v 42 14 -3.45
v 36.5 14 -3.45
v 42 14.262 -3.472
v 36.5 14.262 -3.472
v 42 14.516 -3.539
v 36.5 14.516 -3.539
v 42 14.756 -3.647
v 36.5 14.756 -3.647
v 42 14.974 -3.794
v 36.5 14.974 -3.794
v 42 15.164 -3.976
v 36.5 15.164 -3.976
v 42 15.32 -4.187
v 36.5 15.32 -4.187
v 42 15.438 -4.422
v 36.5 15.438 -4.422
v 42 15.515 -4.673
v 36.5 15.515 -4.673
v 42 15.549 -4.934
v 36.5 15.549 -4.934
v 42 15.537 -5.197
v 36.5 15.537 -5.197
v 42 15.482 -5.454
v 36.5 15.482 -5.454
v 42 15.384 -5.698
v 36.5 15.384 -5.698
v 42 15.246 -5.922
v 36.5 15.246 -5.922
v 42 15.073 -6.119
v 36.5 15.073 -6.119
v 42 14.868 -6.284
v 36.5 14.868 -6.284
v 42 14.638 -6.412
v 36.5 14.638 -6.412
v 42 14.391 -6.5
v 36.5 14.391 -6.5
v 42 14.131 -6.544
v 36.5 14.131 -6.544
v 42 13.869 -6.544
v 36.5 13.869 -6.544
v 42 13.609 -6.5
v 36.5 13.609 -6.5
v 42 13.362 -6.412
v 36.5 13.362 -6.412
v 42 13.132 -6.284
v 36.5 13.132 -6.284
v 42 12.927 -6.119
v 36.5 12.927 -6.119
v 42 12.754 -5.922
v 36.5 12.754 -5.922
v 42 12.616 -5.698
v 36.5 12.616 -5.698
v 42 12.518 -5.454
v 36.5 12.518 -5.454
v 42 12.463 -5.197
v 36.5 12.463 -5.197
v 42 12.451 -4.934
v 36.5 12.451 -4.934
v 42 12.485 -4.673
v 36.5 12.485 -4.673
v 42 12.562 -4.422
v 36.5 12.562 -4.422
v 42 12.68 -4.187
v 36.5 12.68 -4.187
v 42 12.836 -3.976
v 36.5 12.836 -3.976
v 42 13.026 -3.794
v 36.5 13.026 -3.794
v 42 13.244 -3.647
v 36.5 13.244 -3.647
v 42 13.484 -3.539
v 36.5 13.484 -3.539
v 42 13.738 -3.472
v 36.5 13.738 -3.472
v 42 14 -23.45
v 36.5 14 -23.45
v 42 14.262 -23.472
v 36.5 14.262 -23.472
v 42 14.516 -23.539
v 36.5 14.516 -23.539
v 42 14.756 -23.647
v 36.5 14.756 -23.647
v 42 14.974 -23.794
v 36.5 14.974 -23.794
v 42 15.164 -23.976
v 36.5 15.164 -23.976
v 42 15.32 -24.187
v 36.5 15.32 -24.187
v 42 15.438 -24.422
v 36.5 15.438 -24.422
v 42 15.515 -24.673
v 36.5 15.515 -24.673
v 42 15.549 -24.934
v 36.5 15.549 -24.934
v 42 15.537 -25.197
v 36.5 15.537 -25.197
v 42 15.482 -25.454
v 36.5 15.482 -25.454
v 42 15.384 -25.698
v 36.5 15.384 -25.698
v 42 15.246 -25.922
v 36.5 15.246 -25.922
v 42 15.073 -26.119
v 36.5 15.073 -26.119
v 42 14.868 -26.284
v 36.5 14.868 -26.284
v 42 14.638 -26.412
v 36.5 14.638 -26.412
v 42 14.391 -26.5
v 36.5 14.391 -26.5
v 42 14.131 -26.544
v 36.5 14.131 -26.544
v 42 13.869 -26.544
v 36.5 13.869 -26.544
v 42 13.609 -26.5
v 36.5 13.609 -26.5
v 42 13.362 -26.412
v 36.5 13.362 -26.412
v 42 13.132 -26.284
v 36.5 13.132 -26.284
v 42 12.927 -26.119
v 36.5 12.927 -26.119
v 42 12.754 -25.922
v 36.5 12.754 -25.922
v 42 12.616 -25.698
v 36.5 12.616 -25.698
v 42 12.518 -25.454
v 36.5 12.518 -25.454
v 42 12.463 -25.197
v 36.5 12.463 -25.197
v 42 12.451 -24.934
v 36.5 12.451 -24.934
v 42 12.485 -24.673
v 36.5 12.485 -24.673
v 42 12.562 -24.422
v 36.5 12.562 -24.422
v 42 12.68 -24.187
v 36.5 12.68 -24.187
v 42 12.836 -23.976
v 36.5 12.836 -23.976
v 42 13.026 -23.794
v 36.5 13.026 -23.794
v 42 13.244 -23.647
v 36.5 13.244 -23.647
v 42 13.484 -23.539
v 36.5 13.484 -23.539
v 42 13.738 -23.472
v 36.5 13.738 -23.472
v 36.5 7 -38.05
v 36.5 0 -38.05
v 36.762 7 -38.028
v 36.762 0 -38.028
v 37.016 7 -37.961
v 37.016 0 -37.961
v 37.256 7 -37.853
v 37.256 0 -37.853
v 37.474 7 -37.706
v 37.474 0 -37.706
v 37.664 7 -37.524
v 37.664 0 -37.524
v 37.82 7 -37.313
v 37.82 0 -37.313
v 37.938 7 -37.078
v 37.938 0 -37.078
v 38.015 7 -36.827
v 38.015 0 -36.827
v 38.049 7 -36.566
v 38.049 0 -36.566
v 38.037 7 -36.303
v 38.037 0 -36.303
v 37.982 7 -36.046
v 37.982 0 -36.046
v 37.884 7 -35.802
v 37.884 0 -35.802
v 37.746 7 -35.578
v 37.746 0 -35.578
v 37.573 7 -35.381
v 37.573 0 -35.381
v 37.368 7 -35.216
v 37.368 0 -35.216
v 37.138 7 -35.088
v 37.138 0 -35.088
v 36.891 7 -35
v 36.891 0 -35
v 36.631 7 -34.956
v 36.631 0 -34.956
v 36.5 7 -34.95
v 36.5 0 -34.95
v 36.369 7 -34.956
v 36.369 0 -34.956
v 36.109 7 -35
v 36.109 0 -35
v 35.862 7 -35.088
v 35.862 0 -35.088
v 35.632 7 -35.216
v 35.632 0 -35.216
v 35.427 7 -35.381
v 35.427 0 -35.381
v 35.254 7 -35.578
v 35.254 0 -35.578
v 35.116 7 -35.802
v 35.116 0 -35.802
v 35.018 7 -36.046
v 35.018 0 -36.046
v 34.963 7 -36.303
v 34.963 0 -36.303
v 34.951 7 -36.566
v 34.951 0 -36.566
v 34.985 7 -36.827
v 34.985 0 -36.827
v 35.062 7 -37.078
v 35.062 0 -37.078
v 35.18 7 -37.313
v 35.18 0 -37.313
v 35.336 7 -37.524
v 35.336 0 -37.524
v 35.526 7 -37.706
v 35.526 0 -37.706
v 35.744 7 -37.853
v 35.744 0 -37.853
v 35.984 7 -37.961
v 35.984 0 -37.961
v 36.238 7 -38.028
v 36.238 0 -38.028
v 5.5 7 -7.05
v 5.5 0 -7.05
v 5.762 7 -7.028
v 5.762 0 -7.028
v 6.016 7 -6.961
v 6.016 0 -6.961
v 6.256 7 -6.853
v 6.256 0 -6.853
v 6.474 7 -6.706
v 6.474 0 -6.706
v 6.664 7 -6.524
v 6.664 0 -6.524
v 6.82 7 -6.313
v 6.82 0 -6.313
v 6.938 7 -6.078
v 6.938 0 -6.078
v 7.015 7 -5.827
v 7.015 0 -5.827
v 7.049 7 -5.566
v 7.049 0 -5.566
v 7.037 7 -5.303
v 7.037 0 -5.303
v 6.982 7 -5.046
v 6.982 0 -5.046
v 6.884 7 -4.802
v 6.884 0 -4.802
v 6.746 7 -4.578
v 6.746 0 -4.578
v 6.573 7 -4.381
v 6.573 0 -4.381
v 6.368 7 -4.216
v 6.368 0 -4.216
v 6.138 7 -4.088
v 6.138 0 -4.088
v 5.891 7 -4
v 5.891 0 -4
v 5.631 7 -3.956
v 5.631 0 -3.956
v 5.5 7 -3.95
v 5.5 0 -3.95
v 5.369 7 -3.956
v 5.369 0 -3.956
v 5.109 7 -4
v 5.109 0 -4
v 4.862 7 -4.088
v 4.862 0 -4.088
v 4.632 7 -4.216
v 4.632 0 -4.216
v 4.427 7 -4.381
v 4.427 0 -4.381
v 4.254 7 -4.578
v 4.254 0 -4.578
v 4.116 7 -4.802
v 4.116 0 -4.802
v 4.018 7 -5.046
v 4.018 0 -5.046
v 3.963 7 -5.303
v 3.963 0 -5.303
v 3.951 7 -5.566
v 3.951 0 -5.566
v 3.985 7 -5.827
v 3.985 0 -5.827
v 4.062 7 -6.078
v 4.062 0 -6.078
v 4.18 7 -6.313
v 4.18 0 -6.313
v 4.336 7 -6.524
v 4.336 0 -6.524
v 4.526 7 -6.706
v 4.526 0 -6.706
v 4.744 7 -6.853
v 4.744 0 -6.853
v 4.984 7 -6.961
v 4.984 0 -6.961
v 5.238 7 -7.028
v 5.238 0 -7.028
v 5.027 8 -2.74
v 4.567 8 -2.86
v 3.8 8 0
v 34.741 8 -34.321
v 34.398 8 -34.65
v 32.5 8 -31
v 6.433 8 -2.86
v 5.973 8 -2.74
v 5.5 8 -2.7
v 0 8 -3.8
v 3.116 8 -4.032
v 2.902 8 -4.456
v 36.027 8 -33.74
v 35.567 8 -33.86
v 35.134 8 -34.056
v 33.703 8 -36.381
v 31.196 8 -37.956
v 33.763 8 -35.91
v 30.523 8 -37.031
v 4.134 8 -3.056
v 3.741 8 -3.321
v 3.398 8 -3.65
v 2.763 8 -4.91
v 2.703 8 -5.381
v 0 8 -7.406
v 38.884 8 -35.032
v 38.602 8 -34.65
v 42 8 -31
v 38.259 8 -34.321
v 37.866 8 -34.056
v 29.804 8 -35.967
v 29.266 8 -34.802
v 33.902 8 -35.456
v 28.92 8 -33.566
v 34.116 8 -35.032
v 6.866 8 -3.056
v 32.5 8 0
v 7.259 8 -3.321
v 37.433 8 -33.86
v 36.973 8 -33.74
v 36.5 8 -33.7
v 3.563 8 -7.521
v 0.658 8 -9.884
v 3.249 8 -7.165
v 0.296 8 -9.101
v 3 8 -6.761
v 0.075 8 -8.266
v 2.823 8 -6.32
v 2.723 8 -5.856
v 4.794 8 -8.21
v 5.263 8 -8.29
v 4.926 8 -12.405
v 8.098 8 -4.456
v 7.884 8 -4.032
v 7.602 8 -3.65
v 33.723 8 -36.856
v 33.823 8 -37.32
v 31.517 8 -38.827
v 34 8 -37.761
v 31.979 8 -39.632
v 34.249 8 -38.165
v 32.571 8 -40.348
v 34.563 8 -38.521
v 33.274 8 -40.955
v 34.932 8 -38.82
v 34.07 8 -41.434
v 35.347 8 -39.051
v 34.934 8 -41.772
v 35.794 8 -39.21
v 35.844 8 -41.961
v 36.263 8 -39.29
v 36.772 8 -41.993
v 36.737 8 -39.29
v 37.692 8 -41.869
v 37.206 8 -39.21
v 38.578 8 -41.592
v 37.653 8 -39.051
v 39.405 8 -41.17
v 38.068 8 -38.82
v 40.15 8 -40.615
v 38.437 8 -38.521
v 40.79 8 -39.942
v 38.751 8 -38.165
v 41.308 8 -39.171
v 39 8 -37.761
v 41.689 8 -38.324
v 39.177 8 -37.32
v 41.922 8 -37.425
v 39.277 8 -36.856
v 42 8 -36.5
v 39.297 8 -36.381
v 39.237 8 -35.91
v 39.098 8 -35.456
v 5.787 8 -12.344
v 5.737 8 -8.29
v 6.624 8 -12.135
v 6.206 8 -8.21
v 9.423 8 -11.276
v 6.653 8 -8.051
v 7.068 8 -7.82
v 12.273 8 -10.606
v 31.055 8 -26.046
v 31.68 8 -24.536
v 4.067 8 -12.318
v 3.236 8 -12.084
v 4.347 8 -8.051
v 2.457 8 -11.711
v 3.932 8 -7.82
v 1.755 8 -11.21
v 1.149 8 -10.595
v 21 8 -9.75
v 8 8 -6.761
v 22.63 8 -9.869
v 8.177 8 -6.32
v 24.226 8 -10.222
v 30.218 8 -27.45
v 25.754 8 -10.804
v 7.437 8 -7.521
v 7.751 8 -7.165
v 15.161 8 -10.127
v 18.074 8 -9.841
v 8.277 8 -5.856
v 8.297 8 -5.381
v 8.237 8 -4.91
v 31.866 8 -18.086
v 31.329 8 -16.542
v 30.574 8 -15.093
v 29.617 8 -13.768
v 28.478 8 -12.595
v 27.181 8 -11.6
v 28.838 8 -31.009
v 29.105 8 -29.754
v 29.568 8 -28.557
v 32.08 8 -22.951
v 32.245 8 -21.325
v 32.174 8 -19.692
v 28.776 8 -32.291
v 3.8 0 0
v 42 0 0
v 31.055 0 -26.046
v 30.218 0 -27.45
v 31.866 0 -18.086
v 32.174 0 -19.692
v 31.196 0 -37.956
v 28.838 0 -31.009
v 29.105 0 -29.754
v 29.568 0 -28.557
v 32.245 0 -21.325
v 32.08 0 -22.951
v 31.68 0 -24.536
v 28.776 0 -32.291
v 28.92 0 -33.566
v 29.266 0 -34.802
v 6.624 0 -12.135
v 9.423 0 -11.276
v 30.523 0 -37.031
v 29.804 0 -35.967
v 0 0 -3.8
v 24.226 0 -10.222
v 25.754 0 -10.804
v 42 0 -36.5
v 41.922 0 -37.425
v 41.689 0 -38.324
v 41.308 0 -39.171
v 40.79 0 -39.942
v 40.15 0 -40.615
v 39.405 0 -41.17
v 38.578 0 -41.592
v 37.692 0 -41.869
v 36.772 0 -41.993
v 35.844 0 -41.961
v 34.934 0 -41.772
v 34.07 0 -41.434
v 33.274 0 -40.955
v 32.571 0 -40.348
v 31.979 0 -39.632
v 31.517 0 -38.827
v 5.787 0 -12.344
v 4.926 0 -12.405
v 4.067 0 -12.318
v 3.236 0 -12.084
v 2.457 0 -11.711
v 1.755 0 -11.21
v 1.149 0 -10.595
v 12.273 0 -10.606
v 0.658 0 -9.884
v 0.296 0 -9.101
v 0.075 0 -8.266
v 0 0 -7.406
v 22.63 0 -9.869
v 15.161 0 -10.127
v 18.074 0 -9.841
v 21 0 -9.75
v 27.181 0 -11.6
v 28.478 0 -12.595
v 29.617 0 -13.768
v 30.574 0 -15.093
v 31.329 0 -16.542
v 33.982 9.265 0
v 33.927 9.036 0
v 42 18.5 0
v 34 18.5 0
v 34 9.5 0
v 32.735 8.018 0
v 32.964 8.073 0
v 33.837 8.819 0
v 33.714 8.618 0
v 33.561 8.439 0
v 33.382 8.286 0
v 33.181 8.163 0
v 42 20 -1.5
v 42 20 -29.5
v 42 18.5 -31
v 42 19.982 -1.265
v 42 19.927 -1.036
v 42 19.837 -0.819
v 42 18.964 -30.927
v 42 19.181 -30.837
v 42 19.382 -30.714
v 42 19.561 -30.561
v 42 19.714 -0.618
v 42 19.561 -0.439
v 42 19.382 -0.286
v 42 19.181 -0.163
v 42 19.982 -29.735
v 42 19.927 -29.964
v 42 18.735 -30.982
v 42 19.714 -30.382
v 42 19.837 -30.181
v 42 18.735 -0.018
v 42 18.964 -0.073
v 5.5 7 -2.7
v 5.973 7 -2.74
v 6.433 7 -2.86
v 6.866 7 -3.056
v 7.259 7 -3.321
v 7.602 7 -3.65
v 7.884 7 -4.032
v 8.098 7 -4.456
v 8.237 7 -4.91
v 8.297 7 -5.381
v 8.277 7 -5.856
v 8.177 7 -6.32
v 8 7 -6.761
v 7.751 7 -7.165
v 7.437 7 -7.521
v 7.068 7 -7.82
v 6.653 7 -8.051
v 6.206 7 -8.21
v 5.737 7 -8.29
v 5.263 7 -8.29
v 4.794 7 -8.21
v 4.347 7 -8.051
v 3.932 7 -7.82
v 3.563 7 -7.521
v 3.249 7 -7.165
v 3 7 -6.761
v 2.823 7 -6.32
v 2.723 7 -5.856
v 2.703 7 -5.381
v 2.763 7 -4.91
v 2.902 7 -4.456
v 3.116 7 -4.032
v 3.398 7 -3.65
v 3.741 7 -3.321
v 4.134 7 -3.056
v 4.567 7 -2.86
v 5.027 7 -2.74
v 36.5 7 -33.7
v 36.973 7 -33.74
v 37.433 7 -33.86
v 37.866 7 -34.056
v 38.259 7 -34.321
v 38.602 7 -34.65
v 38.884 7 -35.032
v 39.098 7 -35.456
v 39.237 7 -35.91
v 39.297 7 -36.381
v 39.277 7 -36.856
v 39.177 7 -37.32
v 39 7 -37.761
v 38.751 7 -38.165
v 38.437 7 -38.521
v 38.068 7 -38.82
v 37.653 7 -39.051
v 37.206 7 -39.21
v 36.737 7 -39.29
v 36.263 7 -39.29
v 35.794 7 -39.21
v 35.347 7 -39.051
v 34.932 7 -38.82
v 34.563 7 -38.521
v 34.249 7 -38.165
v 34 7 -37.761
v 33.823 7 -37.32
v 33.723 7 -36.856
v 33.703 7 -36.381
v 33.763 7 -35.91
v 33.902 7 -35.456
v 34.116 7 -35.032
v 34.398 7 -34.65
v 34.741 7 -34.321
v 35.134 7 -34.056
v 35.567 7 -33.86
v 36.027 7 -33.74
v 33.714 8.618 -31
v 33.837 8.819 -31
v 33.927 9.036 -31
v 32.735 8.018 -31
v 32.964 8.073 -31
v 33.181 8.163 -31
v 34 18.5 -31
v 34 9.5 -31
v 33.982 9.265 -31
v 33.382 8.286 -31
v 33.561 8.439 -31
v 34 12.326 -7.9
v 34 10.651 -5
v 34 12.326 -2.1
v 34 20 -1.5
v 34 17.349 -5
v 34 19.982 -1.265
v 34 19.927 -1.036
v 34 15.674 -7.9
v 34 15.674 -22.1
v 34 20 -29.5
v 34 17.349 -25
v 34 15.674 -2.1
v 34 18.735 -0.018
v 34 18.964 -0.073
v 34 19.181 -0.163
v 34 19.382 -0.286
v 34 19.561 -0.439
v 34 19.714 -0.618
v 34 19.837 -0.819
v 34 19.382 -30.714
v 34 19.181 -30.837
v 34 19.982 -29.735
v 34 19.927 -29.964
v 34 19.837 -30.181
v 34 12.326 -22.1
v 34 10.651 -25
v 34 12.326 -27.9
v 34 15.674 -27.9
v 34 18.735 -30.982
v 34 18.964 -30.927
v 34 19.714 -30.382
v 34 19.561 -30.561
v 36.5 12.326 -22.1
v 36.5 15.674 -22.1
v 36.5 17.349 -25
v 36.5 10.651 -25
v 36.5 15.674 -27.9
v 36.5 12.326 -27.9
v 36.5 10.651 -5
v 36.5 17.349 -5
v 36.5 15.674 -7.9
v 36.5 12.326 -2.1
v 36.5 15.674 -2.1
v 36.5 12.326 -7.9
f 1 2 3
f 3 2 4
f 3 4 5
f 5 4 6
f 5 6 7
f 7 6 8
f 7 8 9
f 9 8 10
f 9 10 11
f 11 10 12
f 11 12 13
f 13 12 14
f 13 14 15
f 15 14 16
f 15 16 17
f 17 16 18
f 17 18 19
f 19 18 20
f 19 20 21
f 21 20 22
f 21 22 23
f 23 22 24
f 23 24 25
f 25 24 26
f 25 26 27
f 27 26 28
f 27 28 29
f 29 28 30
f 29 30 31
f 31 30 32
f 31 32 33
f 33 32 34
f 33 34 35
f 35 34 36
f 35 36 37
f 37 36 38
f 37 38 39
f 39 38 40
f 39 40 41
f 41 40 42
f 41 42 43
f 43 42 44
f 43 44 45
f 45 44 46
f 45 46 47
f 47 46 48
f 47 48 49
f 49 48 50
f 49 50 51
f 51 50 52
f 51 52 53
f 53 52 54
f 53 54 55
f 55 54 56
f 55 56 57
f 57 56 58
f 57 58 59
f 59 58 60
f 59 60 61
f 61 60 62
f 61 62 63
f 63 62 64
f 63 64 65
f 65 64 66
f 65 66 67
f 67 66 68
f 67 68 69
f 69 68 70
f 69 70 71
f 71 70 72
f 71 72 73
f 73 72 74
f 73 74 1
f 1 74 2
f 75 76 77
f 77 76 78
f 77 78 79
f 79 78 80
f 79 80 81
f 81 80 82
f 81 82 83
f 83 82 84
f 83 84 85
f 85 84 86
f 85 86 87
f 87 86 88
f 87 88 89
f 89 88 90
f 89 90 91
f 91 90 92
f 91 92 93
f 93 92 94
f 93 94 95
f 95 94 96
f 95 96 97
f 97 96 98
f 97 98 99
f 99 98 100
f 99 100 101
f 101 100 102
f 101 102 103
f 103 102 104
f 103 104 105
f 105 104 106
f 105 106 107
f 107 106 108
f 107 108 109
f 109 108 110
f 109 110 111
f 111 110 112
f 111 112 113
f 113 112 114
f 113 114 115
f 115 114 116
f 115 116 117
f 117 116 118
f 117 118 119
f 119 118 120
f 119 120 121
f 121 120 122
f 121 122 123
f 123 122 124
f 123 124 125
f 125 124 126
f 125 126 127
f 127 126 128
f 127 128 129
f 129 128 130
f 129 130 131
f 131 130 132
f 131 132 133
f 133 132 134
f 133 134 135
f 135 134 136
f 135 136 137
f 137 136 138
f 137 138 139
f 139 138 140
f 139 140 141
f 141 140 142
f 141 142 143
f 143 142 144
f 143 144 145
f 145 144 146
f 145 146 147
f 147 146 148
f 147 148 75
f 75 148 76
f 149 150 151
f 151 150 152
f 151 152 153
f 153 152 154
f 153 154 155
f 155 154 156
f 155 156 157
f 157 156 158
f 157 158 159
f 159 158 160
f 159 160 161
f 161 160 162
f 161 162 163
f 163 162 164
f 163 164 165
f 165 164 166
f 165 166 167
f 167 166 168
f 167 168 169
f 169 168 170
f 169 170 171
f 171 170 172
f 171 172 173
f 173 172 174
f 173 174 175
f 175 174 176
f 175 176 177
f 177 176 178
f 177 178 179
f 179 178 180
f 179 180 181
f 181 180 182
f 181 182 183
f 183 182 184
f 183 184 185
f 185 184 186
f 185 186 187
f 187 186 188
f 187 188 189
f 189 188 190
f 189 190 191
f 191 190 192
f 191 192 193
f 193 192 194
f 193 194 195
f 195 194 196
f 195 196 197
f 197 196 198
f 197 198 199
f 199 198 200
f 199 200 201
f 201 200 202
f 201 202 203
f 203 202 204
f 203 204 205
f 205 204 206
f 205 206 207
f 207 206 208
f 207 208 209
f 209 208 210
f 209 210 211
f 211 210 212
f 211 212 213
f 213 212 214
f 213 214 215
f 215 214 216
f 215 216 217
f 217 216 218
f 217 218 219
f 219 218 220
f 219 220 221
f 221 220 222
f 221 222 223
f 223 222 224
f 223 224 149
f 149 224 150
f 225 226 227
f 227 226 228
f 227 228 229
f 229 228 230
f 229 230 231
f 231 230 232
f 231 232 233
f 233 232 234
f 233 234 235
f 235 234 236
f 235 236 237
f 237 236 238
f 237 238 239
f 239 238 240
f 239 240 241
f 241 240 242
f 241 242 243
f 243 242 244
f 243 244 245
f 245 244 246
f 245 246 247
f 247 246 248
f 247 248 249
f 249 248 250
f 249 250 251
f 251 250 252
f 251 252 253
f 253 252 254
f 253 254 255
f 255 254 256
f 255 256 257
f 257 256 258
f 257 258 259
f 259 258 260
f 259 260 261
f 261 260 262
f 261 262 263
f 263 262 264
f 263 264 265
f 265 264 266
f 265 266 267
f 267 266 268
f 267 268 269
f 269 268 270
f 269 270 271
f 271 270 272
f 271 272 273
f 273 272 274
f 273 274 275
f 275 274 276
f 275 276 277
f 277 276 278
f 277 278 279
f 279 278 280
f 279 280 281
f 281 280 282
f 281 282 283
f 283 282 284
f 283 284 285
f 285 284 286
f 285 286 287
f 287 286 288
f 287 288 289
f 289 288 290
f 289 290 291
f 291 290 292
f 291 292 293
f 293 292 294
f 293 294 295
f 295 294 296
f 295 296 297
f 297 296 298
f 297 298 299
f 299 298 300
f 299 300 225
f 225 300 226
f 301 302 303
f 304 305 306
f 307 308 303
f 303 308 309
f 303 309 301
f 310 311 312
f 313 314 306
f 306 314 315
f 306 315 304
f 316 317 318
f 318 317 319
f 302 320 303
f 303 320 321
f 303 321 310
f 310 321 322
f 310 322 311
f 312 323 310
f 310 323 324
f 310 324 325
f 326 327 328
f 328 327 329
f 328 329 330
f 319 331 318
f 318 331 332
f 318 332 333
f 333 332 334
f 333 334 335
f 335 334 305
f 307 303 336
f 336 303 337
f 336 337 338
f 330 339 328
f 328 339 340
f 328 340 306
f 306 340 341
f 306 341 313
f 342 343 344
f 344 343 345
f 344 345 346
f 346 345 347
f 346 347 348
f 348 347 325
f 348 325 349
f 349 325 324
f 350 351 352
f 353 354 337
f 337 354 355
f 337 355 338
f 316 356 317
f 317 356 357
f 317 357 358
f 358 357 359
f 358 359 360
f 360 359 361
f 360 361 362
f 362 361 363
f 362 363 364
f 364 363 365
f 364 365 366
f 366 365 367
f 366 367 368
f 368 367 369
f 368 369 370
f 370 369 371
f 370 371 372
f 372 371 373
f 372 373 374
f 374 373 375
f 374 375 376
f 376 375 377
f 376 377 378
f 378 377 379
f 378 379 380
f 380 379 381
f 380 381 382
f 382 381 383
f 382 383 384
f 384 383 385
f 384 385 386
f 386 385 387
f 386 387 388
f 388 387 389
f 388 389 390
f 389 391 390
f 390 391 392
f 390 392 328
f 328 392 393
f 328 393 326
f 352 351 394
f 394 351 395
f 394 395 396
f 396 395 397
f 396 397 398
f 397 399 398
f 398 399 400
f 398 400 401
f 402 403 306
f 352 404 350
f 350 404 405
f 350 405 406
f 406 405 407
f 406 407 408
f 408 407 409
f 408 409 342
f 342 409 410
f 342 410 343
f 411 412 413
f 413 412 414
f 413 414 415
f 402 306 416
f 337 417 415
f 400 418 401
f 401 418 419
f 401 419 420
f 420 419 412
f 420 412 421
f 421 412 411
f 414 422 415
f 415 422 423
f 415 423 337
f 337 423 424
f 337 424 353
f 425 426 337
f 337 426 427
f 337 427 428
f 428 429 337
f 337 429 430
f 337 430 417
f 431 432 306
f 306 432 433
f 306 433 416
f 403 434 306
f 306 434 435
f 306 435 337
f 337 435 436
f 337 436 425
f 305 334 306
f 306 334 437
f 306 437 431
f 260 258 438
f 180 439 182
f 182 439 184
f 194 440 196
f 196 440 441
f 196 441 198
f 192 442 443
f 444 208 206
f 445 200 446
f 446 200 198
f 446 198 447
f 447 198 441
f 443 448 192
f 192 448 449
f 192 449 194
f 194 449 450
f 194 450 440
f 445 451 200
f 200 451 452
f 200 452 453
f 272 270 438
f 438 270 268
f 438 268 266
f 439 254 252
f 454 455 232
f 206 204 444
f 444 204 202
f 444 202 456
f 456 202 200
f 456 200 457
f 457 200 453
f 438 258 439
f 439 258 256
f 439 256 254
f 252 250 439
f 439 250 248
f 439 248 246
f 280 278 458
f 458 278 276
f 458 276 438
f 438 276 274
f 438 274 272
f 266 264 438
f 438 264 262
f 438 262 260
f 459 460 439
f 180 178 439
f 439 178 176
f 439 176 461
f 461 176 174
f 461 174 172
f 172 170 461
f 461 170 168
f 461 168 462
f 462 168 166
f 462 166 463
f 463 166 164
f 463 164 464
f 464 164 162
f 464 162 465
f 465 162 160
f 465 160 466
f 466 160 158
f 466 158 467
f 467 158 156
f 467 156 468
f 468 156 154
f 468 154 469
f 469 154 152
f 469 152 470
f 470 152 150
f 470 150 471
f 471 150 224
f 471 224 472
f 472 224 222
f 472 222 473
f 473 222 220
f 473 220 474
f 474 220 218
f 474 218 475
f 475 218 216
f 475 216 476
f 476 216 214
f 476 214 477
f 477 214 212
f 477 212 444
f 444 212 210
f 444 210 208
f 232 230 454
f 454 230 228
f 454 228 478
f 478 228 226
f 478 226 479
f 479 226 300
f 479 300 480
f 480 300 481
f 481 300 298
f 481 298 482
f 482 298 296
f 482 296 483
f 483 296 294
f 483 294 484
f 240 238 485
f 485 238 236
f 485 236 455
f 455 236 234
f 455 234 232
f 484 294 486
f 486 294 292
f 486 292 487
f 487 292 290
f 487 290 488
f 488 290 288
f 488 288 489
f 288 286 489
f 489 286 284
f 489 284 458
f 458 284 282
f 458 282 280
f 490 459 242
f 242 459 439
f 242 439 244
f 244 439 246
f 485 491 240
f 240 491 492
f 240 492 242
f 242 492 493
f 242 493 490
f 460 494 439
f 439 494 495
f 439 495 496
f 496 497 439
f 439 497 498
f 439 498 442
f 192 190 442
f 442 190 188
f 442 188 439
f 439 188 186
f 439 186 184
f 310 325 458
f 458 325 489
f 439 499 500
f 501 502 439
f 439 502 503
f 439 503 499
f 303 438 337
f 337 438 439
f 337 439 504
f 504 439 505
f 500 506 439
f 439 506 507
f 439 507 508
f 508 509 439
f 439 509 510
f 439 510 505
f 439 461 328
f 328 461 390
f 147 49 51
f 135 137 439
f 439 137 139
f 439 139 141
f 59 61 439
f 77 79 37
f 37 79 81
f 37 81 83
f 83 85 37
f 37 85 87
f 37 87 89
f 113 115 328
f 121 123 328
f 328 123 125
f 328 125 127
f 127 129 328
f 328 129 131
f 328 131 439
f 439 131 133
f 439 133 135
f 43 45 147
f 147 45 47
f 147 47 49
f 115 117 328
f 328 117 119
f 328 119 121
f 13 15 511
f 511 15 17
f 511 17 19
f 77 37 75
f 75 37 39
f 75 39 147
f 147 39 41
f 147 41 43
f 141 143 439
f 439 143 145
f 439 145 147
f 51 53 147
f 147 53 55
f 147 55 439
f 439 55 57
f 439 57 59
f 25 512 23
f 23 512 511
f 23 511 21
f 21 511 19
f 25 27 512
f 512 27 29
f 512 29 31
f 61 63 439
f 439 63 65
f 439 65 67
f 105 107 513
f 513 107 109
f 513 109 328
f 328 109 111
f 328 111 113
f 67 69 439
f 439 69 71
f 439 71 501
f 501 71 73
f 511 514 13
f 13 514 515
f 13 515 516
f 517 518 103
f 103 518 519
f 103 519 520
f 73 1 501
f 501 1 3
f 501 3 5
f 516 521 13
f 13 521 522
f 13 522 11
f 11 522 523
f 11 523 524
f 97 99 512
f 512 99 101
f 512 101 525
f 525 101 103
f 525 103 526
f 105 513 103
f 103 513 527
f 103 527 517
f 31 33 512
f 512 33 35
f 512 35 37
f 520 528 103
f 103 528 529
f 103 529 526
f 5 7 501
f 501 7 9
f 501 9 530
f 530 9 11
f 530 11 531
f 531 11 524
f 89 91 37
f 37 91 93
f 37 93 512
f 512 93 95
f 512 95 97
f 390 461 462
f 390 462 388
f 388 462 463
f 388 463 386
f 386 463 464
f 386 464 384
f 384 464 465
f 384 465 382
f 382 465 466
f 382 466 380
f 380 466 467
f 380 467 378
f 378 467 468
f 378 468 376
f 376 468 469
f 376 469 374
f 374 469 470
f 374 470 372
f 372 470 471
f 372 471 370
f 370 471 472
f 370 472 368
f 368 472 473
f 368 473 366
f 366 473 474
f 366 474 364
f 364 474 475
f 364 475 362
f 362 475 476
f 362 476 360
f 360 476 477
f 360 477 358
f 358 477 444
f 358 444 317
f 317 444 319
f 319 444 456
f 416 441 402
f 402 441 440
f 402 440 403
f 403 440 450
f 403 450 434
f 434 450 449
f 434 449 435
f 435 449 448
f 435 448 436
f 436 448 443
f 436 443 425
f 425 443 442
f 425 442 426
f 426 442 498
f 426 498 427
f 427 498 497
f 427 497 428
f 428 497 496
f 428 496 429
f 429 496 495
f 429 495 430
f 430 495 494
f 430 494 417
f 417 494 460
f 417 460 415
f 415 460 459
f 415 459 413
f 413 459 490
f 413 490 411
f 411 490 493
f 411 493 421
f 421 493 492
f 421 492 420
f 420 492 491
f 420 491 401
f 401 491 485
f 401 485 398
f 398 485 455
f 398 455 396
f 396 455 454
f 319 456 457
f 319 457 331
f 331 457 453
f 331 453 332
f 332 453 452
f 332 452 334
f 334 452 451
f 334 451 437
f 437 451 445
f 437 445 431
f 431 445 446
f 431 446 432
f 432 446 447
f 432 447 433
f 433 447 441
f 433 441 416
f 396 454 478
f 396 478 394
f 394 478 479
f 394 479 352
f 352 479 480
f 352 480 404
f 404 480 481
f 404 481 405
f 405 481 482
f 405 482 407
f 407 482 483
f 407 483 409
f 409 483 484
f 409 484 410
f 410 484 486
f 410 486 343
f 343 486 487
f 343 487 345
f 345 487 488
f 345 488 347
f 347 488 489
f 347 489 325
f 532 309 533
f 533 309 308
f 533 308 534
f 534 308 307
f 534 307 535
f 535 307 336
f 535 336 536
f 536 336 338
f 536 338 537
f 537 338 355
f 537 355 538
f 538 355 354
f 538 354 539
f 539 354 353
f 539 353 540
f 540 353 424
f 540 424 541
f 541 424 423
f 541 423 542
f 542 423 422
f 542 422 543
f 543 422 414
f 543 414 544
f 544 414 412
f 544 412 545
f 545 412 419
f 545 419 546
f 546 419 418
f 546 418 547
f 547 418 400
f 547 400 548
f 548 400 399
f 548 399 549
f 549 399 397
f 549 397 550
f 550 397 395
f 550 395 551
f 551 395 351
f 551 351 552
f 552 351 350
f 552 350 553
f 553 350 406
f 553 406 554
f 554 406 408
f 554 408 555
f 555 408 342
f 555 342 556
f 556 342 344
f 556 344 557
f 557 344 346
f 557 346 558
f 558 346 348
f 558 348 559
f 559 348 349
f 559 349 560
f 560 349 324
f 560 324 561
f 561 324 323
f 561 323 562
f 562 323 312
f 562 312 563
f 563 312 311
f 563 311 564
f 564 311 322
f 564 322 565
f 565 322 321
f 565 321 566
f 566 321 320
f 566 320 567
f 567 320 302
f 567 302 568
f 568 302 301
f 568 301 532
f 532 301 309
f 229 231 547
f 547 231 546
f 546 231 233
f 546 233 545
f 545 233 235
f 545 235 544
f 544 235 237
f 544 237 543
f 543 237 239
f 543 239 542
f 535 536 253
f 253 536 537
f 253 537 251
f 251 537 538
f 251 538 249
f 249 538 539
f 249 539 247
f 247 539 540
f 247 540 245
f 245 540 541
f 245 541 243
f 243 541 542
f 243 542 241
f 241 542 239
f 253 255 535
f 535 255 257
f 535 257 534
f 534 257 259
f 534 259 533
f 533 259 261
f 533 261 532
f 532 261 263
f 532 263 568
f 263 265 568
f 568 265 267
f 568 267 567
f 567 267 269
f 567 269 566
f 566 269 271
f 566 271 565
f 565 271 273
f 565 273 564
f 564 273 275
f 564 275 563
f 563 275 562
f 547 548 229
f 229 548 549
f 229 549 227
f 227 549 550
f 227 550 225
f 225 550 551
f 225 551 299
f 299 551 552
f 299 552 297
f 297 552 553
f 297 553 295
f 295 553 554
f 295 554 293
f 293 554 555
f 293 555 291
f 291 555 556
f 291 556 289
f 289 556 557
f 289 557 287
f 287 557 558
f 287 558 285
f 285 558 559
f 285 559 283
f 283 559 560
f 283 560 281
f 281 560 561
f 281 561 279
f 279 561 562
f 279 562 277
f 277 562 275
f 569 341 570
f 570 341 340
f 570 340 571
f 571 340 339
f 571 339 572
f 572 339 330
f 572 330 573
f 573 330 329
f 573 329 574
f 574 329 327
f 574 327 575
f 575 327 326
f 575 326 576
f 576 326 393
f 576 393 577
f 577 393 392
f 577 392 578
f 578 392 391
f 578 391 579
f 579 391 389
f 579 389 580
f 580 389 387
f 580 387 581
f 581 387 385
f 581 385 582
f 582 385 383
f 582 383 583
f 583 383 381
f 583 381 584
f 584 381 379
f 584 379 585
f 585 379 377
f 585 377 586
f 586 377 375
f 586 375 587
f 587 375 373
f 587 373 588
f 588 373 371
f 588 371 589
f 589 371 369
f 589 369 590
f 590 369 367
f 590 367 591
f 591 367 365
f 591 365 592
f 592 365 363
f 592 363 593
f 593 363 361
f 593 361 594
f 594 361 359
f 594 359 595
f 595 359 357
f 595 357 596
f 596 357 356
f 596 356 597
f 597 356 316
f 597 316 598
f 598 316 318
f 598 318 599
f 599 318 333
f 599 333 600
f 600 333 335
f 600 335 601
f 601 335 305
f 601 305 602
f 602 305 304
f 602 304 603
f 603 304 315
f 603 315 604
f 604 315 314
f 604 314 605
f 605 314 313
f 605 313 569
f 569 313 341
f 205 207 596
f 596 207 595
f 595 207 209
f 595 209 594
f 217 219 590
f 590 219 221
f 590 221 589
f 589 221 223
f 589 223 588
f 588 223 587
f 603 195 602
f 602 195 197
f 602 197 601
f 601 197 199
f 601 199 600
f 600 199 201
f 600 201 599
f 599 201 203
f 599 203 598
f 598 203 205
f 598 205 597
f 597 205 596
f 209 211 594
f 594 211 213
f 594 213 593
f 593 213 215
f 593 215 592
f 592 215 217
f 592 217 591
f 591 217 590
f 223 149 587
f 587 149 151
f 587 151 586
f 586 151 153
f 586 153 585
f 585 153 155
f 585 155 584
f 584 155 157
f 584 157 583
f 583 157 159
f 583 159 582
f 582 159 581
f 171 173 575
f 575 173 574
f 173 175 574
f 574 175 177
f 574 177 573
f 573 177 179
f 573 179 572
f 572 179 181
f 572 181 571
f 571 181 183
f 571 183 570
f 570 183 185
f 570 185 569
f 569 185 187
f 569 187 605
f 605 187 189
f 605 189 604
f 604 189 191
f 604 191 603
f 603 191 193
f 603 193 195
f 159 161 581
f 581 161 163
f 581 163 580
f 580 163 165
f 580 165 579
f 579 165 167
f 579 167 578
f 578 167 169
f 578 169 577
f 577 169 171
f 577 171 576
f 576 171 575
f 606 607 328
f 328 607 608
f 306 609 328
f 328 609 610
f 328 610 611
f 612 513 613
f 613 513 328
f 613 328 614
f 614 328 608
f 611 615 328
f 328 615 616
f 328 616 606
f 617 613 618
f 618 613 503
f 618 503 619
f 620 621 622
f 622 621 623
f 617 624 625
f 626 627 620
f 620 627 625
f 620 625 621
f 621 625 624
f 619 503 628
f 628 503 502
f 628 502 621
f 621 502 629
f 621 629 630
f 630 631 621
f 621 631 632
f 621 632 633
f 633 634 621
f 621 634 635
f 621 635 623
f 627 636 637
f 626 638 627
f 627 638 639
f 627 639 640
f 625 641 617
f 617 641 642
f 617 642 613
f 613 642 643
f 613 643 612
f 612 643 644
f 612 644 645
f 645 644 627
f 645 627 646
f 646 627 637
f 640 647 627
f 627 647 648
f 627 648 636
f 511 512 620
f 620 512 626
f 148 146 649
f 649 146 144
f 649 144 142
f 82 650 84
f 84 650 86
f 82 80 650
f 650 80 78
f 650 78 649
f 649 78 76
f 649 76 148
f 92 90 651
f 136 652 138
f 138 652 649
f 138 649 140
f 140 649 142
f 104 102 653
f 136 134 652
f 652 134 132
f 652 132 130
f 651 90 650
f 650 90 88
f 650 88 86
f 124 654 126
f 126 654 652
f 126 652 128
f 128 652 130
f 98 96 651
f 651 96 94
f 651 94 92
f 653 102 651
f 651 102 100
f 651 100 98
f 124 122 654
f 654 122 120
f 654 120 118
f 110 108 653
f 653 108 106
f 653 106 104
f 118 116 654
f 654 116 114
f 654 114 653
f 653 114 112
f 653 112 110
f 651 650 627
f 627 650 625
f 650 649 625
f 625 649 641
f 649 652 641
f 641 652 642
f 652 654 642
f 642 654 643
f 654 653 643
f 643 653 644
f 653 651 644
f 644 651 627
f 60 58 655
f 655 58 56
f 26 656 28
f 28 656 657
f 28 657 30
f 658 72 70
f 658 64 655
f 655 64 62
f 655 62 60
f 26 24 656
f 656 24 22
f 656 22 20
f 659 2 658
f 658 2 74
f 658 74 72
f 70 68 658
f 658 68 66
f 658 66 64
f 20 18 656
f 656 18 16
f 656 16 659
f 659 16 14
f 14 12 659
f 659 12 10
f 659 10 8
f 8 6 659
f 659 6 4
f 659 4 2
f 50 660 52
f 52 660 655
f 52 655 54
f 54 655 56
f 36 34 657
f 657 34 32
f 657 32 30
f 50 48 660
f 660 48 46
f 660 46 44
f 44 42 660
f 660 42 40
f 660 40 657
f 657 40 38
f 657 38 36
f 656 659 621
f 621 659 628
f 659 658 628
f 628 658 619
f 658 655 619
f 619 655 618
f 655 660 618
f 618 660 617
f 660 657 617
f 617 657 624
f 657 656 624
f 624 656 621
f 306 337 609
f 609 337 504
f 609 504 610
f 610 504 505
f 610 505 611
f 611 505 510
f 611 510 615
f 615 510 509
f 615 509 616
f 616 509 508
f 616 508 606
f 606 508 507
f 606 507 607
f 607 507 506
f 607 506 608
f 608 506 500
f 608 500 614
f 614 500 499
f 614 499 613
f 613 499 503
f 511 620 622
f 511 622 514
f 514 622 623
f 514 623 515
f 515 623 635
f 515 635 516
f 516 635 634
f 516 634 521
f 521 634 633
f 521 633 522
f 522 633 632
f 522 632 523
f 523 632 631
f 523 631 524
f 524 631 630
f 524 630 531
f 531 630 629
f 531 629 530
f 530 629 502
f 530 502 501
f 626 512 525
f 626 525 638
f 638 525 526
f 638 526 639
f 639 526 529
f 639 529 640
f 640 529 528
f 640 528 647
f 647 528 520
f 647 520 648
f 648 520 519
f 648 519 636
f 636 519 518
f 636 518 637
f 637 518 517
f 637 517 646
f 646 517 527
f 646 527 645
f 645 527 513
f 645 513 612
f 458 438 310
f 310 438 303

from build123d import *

# Parameters (mm, degrees)
CROQUIS1_R              = 1.55
SALIENTE_EXTRUIR2_DEPTH = 8
REDONDEO1_R             = 8
REDONDEO2_R             = 5
CROQUIS2_R              = 2.8
CORTAR_EXTRUIR1_DEPTH   = 1
CROQUIS3_W              = 8
CROQUIS3_H              = 31
SALIENTE_EXTRUIR3_DEPTH = 12
CROQUIS4_R              = 1.55
CORTAR_EXTRUIR2_DEPTH   = 8
CORTAR_EXTRUIR3_DEPTH   = 2.5
REDONDEO3_R             = 1.5
REDONDEO4_R             = 1.5
CHAFL_N1_SIZE           = 3.8


with BuildPart() as part:
    # Croquis1 → Saliente-Extruir2 (new body)
    with BuildSketch(Plane(origin=(0, 0, 0), x_dir=(1, 0, 0), z_dir=(0, 1, 0))):
        with BuildLine():
            Line((0, 0), (42, 0))
            Line((42, 0), (42, 36.5))
            ThreePointArc((42, 36.5), (37.234408514, 41.950747117), (31.196129406, 37.95566367))
            ThreePointArc((31.196129406, 37.95566367), (26.790448284, 33.865529217), (21, 32.25))
            ThreePointArc((21, 32.25), (32.25, 21), (21, 9.75))
            ThreePointArc((21, 9.75), (10.169247694, 11.081546284), (0, 15.039400798))
            Line((0, 15.039400798), (0, 0))
        make_face()
        with Locations((36.5, 36.5)):
            Circle(CROQUIS1_R, mode=Mode.SUBTRACT)
        with Locations((5.5, 5.5)):
            Circle(CROQUIS1_R, mode=Mode.SUBTRACT)
    extrude(amount=SALIENTE_EXTRUIR2_DEPTH)

    # Redondeo1
    redondeo1_edges = [part.edges().sort_by_distance(p)[0] for p in [
        (21, 4, -32.25),
    ]]
    fillet(redondeo1_edges, radius=REDONDEO1_R)

    # Redondeo2
    redondeo2_edges = [part.edges().sort_by_distance(p)[0] for p in [
        (0, 4, -15.039400798),
    ]]
    fillet(redondeo2_edges, radius=REDONDEO2_R)

    # Croquis2 → Cortar-Extruir1 (cut)
    with BuildSketch(Plane(origin=(0, 8, 0), x_dir=(1, 0, 0), z_dir=(0, 1, 0))):
        with Locations((36.5, 36.5)):
            Circle(CROQUIS2_R)
        with Locations((5.5, 5.5)):
            Circle(CROQUIS2_R)
    extrude(amount=-CORTAR_EXTRUIR1_DEPTH, mode=Mode.SUBTRACT)

    # Croquis3 → Saliente-Extruir3 (add)
    with BuildSketch(Plane(origin=(0, 8, 0), x_dir=(1, 0, 0), z_dir=(0, 1, 0))):
        with Locations((38, 15.5)):
            Rectangle(CROQUIS3_W, CROQUIS3_H)
    extrude(amount=SALIENTE_EXTRUIR3_DEPTH)

    # Croquis4 → Cortar-Extruir2 (cut)
    with BuildSketch(Plane.ZY.offset(-34)):
        with Locations((-25, 14)):
            Circle(CROQUIS4_R)
        with Locations((-5, 14)):
            Circle(CROQUIS4_R)
    extrude(amount=-CORTAR_EXTRUIR2_DEPTH, mode=Mode.SUBTRACT)

    # Croquis5 → Cortar-Extruir3 (cut)
    with BuildSketch(Plane.ZY.offset(-34)):
        Polygon((-25, 17.348631561), (-27.9, 15.674315781), (-27.9, 12.325684219), (-25, 10.651368439), (-22.1, 12.325684219), (-22.1, 15.674315781), align=None)
        Polygon((-5, 17.348631561), (-7.9, 15.674315781), (-7.9, 12.325684219), (-5, 10.651368439), (-2.1, 12.325684219), (-2.1, 15.674315781), align=None)
    extrude(amount=-CORTAR_EXTRUIR3_DEPTH, mode=Mode.SUBTRACT)

    # Redondeo3
    redondeo3_edges = [part.edges().sort_by_distance(p)[0] for p in [
        (34, 8, -15.5),
    ]]
    fillet(redondeo3_edges, radius=REDONDEO3_R)

    # Redondeo4
    redondeo4_edges = [part.edges().sort_by_distance(p)[0] for p in [
        (38, 20, -31),
        (38, 20, 0),
    ]]
    fillet(redondeo4_edges, radius=REDONDEO4_R)

    # Chaflán1
    chafl_n1_edges = [part.edges().sort_by_distance(p)[0] for p in [
        (0, 4, 0),
    ]]
    chamfer(chafl_n1_edges, length=CHAFL_N1_SIZE)


solid = part.part
